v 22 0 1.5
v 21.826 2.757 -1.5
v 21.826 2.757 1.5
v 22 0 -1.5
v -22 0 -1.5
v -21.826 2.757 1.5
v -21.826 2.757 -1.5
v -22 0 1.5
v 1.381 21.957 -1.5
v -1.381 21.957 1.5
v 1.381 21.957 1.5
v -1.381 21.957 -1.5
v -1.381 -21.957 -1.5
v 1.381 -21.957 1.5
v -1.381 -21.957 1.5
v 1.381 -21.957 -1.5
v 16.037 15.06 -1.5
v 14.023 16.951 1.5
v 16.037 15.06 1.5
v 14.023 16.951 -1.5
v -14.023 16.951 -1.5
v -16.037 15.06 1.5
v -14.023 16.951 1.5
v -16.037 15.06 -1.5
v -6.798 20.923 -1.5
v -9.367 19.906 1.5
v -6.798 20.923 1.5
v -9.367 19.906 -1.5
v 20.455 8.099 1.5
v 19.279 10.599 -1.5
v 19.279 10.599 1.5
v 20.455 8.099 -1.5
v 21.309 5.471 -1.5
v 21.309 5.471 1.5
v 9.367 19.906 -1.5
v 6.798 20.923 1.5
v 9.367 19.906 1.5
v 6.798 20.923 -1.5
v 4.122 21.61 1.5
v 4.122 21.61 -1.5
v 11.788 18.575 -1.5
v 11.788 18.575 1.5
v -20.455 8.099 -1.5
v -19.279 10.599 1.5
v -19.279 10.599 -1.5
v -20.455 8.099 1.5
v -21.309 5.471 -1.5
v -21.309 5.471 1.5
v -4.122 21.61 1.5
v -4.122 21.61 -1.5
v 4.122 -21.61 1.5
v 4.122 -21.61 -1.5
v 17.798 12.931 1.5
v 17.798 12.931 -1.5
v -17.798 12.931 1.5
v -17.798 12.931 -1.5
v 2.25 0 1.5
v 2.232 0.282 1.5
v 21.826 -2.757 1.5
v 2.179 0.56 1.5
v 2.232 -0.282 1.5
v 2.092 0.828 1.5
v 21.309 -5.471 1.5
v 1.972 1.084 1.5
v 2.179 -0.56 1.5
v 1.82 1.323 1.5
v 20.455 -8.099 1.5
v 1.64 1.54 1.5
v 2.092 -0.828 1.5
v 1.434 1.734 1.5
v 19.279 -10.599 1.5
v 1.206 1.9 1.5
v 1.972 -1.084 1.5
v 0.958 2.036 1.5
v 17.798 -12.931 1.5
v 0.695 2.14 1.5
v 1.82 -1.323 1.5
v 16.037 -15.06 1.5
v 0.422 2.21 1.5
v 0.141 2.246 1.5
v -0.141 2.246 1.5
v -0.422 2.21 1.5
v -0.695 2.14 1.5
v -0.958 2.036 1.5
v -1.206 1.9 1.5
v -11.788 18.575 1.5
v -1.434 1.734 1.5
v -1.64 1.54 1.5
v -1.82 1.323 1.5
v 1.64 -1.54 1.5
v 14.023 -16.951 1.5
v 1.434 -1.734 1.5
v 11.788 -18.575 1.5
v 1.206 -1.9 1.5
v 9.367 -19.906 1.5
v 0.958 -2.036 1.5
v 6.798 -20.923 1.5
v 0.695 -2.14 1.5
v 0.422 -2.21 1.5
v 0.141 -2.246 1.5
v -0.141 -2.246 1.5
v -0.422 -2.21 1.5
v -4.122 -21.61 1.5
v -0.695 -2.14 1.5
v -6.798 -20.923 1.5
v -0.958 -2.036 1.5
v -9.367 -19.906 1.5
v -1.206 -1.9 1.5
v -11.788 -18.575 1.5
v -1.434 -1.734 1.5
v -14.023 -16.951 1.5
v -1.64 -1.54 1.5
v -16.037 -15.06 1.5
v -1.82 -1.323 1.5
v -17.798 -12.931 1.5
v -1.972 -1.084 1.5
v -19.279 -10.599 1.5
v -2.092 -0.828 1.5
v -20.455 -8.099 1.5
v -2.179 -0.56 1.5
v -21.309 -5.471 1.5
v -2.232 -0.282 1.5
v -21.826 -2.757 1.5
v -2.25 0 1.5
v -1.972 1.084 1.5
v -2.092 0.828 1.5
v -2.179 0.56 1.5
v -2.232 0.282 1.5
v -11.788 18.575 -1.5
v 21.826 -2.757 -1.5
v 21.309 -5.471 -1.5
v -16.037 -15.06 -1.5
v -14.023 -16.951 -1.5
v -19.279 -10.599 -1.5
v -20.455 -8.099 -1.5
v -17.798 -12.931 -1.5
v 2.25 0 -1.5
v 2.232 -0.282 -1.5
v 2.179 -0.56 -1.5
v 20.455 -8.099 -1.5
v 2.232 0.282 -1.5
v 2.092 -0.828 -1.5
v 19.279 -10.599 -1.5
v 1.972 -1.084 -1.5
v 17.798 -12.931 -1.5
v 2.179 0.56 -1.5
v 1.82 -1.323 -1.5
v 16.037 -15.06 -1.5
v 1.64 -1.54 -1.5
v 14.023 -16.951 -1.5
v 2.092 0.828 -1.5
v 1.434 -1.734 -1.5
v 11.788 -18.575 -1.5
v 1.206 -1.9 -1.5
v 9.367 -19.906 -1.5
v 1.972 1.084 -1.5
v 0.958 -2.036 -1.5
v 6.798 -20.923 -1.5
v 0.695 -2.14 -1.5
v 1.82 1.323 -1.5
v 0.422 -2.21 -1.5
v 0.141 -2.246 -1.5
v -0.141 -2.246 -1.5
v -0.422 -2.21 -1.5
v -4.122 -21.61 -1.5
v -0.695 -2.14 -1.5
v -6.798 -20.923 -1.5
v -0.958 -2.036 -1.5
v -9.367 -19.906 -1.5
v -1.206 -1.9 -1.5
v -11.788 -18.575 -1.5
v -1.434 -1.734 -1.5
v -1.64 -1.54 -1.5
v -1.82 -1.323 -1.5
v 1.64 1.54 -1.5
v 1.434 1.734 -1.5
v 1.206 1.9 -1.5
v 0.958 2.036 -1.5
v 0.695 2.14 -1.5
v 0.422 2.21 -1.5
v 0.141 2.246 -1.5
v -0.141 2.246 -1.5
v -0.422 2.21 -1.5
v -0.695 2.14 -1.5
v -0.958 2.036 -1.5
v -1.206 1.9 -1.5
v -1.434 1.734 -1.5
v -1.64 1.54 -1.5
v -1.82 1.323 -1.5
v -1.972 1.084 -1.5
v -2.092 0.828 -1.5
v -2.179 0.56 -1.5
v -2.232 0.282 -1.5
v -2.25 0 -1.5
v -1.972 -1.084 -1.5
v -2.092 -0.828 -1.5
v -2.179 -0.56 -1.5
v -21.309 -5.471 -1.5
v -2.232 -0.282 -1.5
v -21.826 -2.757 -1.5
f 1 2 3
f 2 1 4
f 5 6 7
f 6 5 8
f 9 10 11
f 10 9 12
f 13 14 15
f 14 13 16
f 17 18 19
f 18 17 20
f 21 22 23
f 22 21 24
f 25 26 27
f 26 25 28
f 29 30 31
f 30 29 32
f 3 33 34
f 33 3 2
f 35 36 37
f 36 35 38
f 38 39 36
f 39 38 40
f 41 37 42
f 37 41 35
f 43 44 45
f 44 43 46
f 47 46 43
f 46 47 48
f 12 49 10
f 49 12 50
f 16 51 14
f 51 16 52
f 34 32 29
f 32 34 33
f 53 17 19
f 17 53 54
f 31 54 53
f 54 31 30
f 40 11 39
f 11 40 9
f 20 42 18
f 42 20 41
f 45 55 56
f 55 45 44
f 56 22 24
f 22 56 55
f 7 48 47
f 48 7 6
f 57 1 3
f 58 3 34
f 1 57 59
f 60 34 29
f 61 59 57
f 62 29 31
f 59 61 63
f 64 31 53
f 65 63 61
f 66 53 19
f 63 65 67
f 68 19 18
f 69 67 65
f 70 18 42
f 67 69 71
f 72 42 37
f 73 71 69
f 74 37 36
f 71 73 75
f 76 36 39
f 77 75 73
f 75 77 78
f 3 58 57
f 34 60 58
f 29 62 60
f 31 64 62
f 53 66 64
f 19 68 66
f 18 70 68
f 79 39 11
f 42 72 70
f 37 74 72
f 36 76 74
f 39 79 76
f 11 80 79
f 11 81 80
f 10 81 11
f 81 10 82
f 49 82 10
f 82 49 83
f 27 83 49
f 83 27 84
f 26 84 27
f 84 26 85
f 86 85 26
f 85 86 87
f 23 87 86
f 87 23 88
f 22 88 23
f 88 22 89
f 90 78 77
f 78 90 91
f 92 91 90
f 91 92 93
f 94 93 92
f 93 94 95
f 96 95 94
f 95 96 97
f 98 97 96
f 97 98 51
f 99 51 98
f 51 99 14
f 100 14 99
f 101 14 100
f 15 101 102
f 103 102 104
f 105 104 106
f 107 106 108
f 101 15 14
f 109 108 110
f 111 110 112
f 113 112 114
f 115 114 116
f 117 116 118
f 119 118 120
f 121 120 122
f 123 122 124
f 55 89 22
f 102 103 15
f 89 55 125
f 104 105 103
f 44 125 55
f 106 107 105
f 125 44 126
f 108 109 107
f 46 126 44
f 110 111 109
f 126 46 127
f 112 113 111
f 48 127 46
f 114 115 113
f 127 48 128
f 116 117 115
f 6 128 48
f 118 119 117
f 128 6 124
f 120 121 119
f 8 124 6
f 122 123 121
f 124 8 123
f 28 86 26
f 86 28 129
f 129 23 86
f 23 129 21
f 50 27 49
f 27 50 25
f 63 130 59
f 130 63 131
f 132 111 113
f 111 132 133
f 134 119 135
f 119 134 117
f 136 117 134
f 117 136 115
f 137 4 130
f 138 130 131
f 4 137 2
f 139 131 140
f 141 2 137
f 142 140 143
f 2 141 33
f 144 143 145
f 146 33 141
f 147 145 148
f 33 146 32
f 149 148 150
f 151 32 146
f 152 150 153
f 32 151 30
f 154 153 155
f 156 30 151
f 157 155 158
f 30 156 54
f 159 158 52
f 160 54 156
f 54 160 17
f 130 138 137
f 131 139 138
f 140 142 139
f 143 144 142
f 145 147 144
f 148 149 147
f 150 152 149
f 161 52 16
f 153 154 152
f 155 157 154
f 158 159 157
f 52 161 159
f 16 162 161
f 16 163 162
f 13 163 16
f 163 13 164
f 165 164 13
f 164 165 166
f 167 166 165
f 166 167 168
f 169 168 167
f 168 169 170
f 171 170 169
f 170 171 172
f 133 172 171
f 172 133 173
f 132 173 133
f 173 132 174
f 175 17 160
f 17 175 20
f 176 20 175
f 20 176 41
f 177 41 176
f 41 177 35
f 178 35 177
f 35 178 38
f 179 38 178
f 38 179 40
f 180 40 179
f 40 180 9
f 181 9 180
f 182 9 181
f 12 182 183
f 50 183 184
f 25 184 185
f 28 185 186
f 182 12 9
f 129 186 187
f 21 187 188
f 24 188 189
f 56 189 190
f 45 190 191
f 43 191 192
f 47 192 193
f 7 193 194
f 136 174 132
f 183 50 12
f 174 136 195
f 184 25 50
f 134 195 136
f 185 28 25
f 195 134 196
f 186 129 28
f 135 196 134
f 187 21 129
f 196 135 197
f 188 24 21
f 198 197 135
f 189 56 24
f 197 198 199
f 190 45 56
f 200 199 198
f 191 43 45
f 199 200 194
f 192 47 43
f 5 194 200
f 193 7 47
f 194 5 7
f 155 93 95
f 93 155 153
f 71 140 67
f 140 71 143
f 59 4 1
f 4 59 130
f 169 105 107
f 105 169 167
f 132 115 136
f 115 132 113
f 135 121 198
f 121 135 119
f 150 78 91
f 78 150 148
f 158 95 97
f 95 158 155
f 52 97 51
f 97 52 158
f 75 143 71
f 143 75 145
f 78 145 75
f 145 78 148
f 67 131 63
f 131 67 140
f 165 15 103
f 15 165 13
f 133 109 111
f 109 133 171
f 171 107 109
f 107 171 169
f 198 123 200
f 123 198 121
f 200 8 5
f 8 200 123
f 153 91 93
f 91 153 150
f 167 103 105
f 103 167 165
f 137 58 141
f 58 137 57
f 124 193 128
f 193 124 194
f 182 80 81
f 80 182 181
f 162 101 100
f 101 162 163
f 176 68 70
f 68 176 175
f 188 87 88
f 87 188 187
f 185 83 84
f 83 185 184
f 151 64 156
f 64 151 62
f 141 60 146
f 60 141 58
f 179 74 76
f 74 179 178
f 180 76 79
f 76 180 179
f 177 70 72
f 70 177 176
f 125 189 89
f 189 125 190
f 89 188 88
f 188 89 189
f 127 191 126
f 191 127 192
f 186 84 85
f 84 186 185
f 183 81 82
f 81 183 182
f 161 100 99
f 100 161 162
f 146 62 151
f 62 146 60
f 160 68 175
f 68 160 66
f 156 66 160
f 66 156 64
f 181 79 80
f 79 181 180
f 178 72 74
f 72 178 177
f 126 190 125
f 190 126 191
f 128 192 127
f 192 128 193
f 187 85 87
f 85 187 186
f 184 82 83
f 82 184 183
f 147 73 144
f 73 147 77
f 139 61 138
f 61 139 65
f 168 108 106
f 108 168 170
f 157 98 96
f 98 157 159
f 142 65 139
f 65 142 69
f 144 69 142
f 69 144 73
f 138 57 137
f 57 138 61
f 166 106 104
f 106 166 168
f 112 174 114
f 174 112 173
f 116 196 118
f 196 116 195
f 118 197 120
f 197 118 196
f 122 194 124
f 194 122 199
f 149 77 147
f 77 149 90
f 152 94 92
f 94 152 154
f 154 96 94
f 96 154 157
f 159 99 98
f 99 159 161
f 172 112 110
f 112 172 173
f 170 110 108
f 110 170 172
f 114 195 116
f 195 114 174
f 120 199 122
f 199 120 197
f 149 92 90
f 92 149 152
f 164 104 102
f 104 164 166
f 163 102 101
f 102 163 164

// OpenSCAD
$fn = 50;


difference() {
	union() {
		translate(v = [0, 0, -1.5000000000]) {
			cylinder(h = 3, r = 22.0000000000);
		}
	}
	union() {
		translate(v = [0, 0, -100.0000000000]) {
			cylinder(h = 200, r = 2.2500000000);
		}
	}
}
